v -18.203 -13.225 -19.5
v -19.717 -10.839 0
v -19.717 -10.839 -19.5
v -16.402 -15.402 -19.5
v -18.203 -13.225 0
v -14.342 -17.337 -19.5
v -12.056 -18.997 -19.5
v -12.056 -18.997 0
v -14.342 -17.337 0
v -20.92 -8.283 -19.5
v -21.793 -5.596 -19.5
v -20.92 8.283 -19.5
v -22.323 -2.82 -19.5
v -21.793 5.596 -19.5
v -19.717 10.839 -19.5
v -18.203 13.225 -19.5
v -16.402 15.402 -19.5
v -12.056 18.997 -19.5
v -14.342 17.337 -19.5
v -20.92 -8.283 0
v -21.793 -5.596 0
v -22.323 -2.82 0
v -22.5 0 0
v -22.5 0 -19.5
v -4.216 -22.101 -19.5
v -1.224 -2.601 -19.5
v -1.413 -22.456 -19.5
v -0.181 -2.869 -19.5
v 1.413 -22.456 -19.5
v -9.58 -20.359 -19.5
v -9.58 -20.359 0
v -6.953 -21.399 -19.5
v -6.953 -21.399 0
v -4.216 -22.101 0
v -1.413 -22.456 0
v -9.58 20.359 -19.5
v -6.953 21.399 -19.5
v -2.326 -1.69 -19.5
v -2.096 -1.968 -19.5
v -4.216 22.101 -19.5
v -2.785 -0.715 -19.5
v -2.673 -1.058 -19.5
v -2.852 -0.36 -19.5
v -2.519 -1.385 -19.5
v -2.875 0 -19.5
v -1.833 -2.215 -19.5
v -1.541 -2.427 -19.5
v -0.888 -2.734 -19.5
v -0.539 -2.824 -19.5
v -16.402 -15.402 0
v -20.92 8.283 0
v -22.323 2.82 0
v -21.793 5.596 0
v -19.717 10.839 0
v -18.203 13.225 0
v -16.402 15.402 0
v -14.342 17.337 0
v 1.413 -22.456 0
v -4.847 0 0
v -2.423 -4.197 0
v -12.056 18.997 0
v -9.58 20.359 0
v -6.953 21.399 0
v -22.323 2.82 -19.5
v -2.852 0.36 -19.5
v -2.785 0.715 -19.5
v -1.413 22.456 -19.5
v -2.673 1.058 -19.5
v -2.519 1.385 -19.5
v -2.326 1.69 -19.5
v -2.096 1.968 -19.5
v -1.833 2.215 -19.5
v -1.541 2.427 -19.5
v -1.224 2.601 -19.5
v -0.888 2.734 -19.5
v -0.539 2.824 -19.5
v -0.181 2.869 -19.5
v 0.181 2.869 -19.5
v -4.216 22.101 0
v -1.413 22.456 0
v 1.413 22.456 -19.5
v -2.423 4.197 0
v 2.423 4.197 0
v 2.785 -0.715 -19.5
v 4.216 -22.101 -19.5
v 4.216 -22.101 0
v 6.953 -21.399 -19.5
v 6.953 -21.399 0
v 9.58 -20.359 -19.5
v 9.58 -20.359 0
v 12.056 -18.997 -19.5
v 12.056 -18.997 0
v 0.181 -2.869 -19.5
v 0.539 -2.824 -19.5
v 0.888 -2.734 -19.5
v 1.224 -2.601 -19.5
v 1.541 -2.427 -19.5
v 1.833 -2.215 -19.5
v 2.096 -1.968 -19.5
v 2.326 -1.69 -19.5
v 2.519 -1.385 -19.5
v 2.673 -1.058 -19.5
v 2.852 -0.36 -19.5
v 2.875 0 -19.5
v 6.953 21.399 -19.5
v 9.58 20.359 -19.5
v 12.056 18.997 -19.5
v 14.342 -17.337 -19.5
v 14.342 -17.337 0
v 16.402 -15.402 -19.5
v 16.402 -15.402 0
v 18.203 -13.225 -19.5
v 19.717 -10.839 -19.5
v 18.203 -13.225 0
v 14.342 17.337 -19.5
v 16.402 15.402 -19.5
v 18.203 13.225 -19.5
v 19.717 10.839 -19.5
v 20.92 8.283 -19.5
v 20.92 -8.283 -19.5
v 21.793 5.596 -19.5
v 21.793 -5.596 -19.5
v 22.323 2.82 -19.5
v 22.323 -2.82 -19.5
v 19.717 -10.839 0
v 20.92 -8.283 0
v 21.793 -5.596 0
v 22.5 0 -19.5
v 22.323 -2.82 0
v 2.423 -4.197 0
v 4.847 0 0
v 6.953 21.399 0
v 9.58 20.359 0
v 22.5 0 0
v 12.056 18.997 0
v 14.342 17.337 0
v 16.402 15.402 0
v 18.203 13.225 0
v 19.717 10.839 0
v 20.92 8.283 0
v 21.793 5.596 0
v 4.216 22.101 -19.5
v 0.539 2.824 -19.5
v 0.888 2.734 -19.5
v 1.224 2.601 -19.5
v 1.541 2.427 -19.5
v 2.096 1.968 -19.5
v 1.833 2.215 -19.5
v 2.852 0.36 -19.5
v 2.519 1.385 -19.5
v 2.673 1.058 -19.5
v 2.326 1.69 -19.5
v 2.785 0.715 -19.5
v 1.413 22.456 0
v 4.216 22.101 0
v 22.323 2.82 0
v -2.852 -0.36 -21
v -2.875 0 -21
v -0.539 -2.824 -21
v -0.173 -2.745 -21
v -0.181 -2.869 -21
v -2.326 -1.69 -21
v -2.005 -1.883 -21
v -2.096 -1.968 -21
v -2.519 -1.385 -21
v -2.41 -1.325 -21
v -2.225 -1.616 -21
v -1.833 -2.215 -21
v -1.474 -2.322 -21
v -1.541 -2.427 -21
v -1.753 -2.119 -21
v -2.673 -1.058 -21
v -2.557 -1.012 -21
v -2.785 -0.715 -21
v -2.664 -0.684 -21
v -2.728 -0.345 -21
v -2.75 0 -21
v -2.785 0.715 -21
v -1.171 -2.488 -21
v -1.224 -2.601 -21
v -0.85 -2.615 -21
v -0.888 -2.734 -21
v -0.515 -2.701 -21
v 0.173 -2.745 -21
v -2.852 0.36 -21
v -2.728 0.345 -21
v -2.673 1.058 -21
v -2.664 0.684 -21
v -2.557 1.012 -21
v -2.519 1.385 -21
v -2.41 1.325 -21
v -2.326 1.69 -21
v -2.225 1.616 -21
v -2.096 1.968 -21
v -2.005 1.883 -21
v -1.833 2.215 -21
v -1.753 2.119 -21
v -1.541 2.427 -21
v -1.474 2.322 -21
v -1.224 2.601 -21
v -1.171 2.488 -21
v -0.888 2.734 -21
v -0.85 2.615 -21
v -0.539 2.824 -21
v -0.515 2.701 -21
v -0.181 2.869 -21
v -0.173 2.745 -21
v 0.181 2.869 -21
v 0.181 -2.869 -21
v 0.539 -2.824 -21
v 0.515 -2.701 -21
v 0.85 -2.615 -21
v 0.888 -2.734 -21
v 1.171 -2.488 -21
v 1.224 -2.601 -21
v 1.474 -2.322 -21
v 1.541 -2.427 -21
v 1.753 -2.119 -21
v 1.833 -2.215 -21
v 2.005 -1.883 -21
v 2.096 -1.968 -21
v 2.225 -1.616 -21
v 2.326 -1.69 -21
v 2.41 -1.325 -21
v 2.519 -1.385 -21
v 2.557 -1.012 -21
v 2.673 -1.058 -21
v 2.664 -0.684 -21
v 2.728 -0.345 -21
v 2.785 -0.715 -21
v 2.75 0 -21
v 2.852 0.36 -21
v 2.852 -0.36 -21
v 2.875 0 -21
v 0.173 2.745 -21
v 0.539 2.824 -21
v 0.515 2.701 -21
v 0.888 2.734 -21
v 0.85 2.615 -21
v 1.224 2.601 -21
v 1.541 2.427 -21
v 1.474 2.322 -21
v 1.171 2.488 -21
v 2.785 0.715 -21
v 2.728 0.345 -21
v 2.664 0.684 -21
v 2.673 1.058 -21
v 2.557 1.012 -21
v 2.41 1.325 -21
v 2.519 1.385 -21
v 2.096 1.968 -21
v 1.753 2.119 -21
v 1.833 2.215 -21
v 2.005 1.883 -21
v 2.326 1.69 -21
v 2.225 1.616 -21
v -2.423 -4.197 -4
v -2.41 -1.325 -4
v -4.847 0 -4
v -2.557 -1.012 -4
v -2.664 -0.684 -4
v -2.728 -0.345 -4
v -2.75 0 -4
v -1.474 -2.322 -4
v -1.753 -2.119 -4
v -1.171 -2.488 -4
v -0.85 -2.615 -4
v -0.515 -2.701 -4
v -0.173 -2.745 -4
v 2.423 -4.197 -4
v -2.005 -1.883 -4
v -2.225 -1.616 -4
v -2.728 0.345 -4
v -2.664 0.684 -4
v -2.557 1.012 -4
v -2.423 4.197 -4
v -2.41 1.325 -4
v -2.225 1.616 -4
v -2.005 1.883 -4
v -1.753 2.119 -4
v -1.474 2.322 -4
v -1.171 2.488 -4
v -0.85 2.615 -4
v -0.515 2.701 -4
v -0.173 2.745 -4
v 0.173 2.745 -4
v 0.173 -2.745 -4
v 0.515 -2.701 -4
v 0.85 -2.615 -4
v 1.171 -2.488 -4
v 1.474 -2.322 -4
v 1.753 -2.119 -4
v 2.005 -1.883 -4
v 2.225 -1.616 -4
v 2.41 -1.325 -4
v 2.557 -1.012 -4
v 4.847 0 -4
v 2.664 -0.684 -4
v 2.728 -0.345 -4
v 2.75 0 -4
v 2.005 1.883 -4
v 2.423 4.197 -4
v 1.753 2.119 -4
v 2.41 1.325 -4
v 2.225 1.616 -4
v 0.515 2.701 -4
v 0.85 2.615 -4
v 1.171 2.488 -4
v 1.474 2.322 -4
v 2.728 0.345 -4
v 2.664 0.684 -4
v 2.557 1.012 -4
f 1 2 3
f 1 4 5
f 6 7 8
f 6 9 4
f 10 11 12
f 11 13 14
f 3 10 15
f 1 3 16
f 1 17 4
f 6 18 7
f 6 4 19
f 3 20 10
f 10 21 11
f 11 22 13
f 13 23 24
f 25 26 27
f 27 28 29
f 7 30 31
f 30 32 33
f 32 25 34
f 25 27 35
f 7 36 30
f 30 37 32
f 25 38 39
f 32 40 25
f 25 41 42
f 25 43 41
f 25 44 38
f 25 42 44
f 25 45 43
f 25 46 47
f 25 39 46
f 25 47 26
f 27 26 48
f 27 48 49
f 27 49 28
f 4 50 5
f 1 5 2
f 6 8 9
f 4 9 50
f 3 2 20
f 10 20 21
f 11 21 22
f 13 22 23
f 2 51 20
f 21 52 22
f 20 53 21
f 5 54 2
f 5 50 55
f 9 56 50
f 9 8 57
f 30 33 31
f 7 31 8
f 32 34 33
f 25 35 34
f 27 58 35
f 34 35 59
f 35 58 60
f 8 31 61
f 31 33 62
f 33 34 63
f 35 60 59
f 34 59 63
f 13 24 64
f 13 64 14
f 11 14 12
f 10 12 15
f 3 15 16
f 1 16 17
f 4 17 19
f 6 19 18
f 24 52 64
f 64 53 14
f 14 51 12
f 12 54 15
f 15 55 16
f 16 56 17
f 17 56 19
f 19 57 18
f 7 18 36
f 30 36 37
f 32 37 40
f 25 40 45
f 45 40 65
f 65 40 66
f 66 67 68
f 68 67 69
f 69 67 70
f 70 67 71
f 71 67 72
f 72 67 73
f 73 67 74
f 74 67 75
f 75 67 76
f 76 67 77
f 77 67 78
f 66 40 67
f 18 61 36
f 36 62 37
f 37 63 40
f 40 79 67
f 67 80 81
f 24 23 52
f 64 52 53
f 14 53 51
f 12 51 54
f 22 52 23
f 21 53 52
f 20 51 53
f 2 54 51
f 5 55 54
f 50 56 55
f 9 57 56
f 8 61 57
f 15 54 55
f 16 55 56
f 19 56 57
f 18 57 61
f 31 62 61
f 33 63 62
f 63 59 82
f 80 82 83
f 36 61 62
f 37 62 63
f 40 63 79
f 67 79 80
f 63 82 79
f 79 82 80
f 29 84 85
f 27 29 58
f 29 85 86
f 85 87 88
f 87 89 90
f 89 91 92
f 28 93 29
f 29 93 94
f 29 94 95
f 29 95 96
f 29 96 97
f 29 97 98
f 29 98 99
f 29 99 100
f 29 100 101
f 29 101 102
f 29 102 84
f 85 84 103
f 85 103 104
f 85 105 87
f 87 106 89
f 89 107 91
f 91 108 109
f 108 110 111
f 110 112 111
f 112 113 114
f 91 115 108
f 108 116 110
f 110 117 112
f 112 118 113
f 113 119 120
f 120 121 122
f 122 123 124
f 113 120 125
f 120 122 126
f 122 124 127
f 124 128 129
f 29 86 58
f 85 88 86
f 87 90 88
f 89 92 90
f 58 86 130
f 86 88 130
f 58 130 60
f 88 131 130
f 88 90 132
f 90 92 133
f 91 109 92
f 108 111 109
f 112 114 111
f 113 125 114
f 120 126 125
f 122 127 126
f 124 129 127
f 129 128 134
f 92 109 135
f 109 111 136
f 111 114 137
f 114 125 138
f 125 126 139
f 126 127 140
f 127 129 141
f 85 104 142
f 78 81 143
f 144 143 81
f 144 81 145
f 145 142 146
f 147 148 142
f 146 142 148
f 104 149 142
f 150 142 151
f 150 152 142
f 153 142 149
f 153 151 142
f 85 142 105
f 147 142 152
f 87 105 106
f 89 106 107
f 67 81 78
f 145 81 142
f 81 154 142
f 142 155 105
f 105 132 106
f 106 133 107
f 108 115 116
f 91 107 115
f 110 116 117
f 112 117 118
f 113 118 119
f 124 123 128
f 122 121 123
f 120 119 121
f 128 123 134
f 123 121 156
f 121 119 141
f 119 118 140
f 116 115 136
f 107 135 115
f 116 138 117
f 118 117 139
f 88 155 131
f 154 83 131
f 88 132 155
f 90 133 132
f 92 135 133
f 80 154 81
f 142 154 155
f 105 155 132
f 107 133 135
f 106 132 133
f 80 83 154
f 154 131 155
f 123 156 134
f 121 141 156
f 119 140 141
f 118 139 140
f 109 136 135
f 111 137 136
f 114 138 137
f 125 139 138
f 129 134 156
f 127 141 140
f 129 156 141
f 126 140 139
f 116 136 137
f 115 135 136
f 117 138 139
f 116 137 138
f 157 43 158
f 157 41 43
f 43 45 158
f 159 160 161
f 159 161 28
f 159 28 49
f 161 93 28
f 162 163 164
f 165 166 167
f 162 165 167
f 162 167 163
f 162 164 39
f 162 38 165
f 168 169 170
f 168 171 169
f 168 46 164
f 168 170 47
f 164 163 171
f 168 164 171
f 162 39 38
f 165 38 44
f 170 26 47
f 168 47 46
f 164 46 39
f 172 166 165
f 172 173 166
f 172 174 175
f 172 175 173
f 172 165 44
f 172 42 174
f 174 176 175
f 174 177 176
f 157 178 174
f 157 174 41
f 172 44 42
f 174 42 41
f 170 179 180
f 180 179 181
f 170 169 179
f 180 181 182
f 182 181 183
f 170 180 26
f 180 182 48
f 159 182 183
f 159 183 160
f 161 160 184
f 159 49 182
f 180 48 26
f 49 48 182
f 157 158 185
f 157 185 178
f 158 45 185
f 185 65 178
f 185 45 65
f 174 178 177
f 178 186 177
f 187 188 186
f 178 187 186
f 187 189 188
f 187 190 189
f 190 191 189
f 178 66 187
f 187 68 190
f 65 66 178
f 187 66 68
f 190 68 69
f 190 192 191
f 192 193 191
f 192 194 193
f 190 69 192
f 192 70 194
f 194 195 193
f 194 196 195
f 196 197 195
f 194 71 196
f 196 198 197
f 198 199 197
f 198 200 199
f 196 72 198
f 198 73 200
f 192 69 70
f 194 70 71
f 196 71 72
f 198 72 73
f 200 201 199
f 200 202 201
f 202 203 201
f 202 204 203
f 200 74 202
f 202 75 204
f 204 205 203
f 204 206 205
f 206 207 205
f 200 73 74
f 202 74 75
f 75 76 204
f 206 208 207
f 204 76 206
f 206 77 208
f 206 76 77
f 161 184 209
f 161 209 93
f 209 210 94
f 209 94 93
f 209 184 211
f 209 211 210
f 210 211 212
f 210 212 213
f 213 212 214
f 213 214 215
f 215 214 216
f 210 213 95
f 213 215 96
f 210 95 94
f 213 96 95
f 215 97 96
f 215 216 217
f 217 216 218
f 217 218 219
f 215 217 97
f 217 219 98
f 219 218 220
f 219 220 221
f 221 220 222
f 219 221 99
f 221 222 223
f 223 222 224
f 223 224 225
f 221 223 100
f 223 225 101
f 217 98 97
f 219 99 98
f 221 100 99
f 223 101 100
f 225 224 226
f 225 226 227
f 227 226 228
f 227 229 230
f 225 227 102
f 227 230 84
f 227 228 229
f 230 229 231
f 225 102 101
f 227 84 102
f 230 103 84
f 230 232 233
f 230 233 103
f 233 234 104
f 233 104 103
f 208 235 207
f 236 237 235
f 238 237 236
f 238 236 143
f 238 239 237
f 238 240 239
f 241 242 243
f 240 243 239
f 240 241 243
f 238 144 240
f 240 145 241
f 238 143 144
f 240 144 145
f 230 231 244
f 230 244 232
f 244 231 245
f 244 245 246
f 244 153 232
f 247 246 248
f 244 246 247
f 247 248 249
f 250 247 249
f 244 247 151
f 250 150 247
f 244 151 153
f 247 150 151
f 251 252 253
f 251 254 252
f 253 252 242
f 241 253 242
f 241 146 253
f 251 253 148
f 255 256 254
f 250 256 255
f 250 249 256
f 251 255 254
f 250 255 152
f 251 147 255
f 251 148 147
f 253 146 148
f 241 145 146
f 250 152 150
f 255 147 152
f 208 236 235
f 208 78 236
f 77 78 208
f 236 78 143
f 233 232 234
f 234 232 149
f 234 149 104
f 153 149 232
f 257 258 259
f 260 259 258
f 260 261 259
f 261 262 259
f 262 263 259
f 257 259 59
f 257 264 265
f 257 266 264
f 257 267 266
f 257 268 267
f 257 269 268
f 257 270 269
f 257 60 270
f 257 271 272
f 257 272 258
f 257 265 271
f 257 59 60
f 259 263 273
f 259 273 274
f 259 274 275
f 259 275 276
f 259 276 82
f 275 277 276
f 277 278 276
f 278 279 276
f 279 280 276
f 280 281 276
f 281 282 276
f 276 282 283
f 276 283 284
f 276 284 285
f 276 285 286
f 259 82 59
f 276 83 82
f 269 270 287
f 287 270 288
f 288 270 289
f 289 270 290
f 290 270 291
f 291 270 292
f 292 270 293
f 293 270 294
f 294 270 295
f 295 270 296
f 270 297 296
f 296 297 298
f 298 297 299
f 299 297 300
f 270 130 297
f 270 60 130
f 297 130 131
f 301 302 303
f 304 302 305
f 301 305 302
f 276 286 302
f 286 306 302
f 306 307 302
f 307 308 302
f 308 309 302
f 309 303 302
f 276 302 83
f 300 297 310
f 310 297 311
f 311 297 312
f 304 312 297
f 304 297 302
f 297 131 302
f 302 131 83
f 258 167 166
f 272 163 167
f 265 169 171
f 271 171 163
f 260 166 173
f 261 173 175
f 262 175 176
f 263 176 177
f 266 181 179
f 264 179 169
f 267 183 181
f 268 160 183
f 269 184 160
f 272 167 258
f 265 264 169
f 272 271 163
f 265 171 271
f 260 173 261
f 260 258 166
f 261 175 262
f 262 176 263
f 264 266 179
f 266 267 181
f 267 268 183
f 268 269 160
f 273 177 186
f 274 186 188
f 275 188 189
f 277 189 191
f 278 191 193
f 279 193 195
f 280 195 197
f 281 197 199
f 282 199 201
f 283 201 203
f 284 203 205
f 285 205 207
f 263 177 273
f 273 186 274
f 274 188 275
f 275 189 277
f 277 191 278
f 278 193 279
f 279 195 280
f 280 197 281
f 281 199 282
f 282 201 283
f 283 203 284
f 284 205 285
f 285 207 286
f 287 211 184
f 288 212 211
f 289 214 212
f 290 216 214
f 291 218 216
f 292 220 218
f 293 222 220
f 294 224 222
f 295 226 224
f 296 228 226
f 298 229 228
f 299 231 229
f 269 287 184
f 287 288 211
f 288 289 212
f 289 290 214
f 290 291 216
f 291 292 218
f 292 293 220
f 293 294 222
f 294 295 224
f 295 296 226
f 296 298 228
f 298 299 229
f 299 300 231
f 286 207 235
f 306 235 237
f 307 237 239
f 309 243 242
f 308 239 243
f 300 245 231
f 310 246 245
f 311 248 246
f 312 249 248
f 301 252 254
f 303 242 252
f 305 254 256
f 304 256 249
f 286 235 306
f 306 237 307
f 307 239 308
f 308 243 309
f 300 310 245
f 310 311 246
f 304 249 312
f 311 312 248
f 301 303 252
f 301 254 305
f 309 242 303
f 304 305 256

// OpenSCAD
$fn = 50;


difference() {
	union() {
		translate(v = [0, 0, -19.5000000000]) {
			cylinder(h = 19.5000000000, r = 22.5000000000);
		}
		#translate(v = [0, 0, -21.0000000000]) {
			cylinder(h = 21, r = 2.8750000000);
		}
	}
	union() {
		translate(v = [0, 0, 0]) {
			rotate(a = [0, 0, 0]) {
				difference() {
					union() {
						translate(v = [0, 0, -4]) {
							linear_extrude(height = 4) {
								polygon(points = [[4.8468000000, 0.0000000000], [2.4234000000, 4.1974519271], [-2.4234000000, 4.1974519271], [-4.8468000000, 0.0000000000], [-2.4234000000, -4.1974519271], [2.4234000000, -4.1974519271]]);
							}
						}
					}
					union();
				}
			}
		}
		#translate(v = [0, 0, -100.0000000000]) {
			cylinder(h = 200, r = 2.7500000000);
		}
	}
}
